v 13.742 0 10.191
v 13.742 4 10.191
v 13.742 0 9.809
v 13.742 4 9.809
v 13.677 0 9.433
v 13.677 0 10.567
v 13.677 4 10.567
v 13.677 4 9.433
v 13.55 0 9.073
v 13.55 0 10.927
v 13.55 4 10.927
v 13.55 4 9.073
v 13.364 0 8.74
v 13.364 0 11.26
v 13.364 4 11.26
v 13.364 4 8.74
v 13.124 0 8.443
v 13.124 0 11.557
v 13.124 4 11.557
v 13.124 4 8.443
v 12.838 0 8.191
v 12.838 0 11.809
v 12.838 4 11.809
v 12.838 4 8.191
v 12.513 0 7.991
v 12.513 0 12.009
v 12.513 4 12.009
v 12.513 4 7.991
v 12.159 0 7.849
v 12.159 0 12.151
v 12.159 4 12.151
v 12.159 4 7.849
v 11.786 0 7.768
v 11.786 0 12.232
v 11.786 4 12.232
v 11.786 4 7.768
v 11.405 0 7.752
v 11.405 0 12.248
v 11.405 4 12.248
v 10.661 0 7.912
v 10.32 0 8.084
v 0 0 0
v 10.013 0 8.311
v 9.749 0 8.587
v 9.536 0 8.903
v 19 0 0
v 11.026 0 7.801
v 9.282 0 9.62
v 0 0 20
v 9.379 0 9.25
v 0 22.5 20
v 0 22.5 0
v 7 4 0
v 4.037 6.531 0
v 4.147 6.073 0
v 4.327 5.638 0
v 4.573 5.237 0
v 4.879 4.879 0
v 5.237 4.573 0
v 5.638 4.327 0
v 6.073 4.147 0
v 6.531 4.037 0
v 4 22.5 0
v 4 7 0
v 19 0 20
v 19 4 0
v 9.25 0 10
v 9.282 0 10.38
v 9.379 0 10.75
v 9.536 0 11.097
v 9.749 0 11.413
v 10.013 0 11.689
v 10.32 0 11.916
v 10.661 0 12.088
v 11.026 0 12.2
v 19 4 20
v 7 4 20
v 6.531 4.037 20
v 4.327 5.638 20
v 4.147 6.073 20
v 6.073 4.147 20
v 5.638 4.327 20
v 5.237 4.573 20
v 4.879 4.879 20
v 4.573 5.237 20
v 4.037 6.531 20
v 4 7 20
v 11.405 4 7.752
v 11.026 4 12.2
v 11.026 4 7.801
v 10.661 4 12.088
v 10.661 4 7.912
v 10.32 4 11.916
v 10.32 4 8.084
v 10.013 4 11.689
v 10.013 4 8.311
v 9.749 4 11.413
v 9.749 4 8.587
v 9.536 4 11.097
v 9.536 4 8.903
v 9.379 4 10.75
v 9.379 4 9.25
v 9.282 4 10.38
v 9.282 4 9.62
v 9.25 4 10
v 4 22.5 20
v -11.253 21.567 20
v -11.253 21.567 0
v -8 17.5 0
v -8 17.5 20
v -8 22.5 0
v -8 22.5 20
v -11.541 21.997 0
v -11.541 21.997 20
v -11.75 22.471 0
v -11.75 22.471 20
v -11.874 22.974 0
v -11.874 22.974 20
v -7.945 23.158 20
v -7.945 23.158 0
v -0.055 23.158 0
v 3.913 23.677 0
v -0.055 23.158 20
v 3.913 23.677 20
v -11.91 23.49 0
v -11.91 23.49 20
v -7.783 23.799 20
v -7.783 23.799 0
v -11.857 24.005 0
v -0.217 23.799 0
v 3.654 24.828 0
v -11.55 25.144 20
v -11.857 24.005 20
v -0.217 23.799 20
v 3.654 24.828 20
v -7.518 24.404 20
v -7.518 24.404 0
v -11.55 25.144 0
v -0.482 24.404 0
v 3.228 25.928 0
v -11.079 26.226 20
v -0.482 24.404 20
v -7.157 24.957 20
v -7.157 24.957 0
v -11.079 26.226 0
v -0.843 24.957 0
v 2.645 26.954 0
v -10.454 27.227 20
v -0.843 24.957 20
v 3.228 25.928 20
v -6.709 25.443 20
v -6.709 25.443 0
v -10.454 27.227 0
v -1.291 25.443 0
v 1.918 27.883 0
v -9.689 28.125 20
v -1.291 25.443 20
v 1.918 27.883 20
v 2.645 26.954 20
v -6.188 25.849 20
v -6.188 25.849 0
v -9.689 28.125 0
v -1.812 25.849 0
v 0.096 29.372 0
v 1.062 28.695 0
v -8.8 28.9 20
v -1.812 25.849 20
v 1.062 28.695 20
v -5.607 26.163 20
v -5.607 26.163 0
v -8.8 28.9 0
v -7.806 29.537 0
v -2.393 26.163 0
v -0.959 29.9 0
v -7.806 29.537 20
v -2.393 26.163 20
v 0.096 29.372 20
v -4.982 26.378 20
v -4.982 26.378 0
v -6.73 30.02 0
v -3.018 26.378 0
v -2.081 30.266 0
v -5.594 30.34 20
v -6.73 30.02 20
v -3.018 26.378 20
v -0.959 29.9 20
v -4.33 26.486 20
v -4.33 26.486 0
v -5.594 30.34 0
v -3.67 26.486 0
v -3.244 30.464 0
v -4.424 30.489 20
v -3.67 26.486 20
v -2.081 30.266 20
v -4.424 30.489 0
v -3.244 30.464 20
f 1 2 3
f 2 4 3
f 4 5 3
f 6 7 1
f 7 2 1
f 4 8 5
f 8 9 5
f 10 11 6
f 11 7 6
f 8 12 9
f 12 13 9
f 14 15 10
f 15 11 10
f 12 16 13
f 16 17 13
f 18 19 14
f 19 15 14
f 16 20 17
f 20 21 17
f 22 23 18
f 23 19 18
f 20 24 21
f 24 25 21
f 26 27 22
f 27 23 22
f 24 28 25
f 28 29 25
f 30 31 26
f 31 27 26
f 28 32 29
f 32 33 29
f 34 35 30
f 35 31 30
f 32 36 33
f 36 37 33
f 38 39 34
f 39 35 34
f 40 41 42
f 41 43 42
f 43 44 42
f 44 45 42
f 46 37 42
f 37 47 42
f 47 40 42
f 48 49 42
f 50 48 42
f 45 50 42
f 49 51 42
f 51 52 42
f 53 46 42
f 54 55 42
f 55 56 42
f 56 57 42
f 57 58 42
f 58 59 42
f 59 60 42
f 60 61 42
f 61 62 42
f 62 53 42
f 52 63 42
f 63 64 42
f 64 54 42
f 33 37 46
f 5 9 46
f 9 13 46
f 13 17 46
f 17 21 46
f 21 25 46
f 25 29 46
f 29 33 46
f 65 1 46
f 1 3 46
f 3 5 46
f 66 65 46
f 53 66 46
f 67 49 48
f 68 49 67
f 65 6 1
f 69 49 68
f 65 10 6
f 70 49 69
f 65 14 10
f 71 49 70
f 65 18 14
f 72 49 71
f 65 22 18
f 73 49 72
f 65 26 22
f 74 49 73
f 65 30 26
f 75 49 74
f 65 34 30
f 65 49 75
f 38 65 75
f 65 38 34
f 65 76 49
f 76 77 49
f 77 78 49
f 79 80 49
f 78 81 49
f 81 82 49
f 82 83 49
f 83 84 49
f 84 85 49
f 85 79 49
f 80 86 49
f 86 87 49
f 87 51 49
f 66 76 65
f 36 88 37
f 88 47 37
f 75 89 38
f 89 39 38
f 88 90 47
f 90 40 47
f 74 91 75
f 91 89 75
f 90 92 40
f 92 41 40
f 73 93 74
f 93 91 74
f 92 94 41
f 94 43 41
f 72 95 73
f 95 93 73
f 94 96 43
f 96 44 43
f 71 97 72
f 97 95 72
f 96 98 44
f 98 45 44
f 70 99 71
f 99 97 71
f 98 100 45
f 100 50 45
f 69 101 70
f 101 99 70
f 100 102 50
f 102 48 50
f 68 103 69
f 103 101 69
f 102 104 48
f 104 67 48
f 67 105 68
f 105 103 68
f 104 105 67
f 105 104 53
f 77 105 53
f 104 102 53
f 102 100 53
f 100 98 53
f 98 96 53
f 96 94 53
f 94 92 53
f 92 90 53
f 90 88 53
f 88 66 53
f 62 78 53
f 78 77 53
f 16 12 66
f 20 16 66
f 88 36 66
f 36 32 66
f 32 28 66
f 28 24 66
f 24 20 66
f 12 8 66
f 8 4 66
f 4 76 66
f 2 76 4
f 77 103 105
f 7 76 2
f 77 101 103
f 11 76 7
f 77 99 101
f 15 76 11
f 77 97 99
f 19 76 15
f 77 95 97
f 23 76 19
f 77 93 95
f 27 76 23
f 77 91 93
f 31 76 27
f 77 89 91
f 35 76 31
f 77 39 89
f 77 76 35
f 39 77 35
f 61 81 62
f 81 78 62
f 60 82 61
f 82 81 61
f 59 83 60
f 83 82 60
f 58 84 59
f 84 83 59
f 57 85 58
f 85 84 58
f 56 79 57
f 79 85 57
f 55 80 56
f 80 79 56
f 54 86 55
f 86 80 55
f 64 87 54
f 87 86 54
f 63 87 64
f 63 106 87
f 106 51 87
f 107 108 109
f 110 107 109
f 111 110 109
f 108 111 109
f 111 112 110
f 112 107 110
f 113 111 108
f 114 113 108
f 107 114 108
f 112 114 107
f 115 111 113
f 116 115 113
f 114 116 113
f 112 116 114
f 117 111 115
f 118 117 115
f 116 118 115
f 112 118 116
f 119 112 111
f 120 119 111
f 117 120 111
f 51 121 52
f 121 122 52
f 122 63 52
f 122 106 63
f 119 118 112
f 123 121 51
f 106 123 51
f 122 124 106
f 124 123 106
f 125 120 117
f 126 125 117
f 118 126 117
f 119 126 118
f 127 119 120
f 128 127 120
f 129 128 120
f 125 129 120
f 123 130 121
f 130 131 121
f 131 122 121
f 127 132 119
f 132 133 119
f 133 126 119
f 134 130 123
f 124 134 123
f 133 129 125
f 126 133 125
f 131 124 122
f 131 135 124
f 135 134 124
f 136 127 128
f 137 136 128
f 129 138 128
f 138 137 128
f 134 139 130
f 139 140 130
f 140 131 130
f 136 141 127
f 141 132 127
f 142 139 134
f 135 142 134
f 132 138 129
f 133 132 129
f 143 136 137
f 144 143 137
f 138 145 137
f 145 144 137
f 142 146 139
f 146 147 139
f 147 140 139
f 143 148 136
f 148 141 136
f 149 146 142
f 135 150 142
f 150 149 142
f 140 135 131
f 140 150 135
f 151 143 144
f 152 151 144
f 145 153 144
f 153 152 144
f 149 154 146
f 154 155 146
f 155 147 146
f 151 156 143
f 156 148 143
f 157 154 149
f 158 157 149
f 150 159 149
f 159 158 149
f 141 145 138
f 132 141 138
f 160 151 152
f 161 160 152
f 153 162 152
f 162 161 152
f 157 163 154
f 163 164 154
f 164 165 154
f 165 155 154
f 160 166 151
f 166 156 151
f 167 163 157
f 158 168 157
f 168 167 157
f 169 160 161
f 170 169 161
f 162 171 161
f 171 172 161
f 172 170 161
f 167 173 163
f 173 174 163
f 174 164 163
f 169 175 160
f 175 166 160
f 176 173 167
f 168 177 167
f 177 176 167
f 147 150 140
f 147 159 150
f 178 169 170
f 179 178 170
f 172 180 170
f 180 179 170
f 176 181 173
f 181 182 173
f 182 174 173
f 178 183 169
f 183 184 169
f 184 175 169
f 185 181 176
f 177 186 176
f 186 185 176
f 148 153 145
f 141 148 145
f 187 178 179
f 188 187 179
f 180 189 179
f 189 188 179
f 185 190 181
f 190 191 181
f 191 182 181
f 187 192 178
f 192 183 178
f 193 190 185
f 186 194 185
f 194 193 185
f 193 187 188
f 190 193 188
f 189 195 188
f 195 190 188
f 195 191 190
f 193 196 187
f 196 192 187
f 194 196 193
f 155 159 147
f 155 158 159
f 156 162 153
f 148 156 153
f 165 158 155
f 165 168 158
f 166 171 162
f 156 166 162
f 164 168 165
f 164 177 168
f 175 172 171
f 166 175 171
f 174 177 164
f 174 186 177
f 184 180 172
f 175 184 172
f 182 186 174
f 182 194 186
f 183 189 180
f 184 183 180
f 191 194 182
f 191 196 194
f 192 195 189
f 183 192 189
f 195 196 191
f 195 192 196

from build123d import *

# Parameters (mm, degrees)
SALIENTE_EXTRUIR1_DEPTH = 20
CROQUIS2_R              = 2.25
CORTAR_EXTRUIR1_DEPTH   = 4
REDONDEO1_R             = 3


with BuildPart() as part:
    # Croquis1 → Saliente-Extruir1 (new body)
    with BuildSketch(Plane.XY):
        with BuildLine():
            Line((0, 0), (0, 22.5))
            ThreePointArc((0, 22.5), (-4, 26.5), (-8, 22.5))
            Line((-8, 22.5), (-8, 17.5))
            Line((-8, 17.5), (-12, 22.5))
            ThreePointArc((-12, 22.5), (-4, 30.5), (4, 22.5))
            Line((4, 22.5), (4, 4))
            Line((4, 4), (19, 4))
            Line((19, 4), (19, 0))
            Line((19, 0), (0, 0))
        make_face()
    extrude(amount=SALIENTE_EXTRUIR1_DEPTH)

    # Croquis2 → Cortar-Extruir1 (cut)
    with BuildSketch(Plane(origin=(0, 4, 0), x_dir=(1, 0, 0), z_dir=(0, 1, 0))):
        with Locations((11.5, -10)):
            Circle(CROQUIS2_R)
    extrude(amount=-CORTAR_EXTRUIR1_DEPTH, mode=Mode.SUBTRACT)

    # Redondeo1
    redondeo1_edges = [part.edges().sort_by_distance(p)[0] for p in [
        (-12, 22.5, 10),
        (4, 4, 10),
    ]]
    fillet(redondeo1_edges, radius=REDONDEO1_R)


solid = part.part
